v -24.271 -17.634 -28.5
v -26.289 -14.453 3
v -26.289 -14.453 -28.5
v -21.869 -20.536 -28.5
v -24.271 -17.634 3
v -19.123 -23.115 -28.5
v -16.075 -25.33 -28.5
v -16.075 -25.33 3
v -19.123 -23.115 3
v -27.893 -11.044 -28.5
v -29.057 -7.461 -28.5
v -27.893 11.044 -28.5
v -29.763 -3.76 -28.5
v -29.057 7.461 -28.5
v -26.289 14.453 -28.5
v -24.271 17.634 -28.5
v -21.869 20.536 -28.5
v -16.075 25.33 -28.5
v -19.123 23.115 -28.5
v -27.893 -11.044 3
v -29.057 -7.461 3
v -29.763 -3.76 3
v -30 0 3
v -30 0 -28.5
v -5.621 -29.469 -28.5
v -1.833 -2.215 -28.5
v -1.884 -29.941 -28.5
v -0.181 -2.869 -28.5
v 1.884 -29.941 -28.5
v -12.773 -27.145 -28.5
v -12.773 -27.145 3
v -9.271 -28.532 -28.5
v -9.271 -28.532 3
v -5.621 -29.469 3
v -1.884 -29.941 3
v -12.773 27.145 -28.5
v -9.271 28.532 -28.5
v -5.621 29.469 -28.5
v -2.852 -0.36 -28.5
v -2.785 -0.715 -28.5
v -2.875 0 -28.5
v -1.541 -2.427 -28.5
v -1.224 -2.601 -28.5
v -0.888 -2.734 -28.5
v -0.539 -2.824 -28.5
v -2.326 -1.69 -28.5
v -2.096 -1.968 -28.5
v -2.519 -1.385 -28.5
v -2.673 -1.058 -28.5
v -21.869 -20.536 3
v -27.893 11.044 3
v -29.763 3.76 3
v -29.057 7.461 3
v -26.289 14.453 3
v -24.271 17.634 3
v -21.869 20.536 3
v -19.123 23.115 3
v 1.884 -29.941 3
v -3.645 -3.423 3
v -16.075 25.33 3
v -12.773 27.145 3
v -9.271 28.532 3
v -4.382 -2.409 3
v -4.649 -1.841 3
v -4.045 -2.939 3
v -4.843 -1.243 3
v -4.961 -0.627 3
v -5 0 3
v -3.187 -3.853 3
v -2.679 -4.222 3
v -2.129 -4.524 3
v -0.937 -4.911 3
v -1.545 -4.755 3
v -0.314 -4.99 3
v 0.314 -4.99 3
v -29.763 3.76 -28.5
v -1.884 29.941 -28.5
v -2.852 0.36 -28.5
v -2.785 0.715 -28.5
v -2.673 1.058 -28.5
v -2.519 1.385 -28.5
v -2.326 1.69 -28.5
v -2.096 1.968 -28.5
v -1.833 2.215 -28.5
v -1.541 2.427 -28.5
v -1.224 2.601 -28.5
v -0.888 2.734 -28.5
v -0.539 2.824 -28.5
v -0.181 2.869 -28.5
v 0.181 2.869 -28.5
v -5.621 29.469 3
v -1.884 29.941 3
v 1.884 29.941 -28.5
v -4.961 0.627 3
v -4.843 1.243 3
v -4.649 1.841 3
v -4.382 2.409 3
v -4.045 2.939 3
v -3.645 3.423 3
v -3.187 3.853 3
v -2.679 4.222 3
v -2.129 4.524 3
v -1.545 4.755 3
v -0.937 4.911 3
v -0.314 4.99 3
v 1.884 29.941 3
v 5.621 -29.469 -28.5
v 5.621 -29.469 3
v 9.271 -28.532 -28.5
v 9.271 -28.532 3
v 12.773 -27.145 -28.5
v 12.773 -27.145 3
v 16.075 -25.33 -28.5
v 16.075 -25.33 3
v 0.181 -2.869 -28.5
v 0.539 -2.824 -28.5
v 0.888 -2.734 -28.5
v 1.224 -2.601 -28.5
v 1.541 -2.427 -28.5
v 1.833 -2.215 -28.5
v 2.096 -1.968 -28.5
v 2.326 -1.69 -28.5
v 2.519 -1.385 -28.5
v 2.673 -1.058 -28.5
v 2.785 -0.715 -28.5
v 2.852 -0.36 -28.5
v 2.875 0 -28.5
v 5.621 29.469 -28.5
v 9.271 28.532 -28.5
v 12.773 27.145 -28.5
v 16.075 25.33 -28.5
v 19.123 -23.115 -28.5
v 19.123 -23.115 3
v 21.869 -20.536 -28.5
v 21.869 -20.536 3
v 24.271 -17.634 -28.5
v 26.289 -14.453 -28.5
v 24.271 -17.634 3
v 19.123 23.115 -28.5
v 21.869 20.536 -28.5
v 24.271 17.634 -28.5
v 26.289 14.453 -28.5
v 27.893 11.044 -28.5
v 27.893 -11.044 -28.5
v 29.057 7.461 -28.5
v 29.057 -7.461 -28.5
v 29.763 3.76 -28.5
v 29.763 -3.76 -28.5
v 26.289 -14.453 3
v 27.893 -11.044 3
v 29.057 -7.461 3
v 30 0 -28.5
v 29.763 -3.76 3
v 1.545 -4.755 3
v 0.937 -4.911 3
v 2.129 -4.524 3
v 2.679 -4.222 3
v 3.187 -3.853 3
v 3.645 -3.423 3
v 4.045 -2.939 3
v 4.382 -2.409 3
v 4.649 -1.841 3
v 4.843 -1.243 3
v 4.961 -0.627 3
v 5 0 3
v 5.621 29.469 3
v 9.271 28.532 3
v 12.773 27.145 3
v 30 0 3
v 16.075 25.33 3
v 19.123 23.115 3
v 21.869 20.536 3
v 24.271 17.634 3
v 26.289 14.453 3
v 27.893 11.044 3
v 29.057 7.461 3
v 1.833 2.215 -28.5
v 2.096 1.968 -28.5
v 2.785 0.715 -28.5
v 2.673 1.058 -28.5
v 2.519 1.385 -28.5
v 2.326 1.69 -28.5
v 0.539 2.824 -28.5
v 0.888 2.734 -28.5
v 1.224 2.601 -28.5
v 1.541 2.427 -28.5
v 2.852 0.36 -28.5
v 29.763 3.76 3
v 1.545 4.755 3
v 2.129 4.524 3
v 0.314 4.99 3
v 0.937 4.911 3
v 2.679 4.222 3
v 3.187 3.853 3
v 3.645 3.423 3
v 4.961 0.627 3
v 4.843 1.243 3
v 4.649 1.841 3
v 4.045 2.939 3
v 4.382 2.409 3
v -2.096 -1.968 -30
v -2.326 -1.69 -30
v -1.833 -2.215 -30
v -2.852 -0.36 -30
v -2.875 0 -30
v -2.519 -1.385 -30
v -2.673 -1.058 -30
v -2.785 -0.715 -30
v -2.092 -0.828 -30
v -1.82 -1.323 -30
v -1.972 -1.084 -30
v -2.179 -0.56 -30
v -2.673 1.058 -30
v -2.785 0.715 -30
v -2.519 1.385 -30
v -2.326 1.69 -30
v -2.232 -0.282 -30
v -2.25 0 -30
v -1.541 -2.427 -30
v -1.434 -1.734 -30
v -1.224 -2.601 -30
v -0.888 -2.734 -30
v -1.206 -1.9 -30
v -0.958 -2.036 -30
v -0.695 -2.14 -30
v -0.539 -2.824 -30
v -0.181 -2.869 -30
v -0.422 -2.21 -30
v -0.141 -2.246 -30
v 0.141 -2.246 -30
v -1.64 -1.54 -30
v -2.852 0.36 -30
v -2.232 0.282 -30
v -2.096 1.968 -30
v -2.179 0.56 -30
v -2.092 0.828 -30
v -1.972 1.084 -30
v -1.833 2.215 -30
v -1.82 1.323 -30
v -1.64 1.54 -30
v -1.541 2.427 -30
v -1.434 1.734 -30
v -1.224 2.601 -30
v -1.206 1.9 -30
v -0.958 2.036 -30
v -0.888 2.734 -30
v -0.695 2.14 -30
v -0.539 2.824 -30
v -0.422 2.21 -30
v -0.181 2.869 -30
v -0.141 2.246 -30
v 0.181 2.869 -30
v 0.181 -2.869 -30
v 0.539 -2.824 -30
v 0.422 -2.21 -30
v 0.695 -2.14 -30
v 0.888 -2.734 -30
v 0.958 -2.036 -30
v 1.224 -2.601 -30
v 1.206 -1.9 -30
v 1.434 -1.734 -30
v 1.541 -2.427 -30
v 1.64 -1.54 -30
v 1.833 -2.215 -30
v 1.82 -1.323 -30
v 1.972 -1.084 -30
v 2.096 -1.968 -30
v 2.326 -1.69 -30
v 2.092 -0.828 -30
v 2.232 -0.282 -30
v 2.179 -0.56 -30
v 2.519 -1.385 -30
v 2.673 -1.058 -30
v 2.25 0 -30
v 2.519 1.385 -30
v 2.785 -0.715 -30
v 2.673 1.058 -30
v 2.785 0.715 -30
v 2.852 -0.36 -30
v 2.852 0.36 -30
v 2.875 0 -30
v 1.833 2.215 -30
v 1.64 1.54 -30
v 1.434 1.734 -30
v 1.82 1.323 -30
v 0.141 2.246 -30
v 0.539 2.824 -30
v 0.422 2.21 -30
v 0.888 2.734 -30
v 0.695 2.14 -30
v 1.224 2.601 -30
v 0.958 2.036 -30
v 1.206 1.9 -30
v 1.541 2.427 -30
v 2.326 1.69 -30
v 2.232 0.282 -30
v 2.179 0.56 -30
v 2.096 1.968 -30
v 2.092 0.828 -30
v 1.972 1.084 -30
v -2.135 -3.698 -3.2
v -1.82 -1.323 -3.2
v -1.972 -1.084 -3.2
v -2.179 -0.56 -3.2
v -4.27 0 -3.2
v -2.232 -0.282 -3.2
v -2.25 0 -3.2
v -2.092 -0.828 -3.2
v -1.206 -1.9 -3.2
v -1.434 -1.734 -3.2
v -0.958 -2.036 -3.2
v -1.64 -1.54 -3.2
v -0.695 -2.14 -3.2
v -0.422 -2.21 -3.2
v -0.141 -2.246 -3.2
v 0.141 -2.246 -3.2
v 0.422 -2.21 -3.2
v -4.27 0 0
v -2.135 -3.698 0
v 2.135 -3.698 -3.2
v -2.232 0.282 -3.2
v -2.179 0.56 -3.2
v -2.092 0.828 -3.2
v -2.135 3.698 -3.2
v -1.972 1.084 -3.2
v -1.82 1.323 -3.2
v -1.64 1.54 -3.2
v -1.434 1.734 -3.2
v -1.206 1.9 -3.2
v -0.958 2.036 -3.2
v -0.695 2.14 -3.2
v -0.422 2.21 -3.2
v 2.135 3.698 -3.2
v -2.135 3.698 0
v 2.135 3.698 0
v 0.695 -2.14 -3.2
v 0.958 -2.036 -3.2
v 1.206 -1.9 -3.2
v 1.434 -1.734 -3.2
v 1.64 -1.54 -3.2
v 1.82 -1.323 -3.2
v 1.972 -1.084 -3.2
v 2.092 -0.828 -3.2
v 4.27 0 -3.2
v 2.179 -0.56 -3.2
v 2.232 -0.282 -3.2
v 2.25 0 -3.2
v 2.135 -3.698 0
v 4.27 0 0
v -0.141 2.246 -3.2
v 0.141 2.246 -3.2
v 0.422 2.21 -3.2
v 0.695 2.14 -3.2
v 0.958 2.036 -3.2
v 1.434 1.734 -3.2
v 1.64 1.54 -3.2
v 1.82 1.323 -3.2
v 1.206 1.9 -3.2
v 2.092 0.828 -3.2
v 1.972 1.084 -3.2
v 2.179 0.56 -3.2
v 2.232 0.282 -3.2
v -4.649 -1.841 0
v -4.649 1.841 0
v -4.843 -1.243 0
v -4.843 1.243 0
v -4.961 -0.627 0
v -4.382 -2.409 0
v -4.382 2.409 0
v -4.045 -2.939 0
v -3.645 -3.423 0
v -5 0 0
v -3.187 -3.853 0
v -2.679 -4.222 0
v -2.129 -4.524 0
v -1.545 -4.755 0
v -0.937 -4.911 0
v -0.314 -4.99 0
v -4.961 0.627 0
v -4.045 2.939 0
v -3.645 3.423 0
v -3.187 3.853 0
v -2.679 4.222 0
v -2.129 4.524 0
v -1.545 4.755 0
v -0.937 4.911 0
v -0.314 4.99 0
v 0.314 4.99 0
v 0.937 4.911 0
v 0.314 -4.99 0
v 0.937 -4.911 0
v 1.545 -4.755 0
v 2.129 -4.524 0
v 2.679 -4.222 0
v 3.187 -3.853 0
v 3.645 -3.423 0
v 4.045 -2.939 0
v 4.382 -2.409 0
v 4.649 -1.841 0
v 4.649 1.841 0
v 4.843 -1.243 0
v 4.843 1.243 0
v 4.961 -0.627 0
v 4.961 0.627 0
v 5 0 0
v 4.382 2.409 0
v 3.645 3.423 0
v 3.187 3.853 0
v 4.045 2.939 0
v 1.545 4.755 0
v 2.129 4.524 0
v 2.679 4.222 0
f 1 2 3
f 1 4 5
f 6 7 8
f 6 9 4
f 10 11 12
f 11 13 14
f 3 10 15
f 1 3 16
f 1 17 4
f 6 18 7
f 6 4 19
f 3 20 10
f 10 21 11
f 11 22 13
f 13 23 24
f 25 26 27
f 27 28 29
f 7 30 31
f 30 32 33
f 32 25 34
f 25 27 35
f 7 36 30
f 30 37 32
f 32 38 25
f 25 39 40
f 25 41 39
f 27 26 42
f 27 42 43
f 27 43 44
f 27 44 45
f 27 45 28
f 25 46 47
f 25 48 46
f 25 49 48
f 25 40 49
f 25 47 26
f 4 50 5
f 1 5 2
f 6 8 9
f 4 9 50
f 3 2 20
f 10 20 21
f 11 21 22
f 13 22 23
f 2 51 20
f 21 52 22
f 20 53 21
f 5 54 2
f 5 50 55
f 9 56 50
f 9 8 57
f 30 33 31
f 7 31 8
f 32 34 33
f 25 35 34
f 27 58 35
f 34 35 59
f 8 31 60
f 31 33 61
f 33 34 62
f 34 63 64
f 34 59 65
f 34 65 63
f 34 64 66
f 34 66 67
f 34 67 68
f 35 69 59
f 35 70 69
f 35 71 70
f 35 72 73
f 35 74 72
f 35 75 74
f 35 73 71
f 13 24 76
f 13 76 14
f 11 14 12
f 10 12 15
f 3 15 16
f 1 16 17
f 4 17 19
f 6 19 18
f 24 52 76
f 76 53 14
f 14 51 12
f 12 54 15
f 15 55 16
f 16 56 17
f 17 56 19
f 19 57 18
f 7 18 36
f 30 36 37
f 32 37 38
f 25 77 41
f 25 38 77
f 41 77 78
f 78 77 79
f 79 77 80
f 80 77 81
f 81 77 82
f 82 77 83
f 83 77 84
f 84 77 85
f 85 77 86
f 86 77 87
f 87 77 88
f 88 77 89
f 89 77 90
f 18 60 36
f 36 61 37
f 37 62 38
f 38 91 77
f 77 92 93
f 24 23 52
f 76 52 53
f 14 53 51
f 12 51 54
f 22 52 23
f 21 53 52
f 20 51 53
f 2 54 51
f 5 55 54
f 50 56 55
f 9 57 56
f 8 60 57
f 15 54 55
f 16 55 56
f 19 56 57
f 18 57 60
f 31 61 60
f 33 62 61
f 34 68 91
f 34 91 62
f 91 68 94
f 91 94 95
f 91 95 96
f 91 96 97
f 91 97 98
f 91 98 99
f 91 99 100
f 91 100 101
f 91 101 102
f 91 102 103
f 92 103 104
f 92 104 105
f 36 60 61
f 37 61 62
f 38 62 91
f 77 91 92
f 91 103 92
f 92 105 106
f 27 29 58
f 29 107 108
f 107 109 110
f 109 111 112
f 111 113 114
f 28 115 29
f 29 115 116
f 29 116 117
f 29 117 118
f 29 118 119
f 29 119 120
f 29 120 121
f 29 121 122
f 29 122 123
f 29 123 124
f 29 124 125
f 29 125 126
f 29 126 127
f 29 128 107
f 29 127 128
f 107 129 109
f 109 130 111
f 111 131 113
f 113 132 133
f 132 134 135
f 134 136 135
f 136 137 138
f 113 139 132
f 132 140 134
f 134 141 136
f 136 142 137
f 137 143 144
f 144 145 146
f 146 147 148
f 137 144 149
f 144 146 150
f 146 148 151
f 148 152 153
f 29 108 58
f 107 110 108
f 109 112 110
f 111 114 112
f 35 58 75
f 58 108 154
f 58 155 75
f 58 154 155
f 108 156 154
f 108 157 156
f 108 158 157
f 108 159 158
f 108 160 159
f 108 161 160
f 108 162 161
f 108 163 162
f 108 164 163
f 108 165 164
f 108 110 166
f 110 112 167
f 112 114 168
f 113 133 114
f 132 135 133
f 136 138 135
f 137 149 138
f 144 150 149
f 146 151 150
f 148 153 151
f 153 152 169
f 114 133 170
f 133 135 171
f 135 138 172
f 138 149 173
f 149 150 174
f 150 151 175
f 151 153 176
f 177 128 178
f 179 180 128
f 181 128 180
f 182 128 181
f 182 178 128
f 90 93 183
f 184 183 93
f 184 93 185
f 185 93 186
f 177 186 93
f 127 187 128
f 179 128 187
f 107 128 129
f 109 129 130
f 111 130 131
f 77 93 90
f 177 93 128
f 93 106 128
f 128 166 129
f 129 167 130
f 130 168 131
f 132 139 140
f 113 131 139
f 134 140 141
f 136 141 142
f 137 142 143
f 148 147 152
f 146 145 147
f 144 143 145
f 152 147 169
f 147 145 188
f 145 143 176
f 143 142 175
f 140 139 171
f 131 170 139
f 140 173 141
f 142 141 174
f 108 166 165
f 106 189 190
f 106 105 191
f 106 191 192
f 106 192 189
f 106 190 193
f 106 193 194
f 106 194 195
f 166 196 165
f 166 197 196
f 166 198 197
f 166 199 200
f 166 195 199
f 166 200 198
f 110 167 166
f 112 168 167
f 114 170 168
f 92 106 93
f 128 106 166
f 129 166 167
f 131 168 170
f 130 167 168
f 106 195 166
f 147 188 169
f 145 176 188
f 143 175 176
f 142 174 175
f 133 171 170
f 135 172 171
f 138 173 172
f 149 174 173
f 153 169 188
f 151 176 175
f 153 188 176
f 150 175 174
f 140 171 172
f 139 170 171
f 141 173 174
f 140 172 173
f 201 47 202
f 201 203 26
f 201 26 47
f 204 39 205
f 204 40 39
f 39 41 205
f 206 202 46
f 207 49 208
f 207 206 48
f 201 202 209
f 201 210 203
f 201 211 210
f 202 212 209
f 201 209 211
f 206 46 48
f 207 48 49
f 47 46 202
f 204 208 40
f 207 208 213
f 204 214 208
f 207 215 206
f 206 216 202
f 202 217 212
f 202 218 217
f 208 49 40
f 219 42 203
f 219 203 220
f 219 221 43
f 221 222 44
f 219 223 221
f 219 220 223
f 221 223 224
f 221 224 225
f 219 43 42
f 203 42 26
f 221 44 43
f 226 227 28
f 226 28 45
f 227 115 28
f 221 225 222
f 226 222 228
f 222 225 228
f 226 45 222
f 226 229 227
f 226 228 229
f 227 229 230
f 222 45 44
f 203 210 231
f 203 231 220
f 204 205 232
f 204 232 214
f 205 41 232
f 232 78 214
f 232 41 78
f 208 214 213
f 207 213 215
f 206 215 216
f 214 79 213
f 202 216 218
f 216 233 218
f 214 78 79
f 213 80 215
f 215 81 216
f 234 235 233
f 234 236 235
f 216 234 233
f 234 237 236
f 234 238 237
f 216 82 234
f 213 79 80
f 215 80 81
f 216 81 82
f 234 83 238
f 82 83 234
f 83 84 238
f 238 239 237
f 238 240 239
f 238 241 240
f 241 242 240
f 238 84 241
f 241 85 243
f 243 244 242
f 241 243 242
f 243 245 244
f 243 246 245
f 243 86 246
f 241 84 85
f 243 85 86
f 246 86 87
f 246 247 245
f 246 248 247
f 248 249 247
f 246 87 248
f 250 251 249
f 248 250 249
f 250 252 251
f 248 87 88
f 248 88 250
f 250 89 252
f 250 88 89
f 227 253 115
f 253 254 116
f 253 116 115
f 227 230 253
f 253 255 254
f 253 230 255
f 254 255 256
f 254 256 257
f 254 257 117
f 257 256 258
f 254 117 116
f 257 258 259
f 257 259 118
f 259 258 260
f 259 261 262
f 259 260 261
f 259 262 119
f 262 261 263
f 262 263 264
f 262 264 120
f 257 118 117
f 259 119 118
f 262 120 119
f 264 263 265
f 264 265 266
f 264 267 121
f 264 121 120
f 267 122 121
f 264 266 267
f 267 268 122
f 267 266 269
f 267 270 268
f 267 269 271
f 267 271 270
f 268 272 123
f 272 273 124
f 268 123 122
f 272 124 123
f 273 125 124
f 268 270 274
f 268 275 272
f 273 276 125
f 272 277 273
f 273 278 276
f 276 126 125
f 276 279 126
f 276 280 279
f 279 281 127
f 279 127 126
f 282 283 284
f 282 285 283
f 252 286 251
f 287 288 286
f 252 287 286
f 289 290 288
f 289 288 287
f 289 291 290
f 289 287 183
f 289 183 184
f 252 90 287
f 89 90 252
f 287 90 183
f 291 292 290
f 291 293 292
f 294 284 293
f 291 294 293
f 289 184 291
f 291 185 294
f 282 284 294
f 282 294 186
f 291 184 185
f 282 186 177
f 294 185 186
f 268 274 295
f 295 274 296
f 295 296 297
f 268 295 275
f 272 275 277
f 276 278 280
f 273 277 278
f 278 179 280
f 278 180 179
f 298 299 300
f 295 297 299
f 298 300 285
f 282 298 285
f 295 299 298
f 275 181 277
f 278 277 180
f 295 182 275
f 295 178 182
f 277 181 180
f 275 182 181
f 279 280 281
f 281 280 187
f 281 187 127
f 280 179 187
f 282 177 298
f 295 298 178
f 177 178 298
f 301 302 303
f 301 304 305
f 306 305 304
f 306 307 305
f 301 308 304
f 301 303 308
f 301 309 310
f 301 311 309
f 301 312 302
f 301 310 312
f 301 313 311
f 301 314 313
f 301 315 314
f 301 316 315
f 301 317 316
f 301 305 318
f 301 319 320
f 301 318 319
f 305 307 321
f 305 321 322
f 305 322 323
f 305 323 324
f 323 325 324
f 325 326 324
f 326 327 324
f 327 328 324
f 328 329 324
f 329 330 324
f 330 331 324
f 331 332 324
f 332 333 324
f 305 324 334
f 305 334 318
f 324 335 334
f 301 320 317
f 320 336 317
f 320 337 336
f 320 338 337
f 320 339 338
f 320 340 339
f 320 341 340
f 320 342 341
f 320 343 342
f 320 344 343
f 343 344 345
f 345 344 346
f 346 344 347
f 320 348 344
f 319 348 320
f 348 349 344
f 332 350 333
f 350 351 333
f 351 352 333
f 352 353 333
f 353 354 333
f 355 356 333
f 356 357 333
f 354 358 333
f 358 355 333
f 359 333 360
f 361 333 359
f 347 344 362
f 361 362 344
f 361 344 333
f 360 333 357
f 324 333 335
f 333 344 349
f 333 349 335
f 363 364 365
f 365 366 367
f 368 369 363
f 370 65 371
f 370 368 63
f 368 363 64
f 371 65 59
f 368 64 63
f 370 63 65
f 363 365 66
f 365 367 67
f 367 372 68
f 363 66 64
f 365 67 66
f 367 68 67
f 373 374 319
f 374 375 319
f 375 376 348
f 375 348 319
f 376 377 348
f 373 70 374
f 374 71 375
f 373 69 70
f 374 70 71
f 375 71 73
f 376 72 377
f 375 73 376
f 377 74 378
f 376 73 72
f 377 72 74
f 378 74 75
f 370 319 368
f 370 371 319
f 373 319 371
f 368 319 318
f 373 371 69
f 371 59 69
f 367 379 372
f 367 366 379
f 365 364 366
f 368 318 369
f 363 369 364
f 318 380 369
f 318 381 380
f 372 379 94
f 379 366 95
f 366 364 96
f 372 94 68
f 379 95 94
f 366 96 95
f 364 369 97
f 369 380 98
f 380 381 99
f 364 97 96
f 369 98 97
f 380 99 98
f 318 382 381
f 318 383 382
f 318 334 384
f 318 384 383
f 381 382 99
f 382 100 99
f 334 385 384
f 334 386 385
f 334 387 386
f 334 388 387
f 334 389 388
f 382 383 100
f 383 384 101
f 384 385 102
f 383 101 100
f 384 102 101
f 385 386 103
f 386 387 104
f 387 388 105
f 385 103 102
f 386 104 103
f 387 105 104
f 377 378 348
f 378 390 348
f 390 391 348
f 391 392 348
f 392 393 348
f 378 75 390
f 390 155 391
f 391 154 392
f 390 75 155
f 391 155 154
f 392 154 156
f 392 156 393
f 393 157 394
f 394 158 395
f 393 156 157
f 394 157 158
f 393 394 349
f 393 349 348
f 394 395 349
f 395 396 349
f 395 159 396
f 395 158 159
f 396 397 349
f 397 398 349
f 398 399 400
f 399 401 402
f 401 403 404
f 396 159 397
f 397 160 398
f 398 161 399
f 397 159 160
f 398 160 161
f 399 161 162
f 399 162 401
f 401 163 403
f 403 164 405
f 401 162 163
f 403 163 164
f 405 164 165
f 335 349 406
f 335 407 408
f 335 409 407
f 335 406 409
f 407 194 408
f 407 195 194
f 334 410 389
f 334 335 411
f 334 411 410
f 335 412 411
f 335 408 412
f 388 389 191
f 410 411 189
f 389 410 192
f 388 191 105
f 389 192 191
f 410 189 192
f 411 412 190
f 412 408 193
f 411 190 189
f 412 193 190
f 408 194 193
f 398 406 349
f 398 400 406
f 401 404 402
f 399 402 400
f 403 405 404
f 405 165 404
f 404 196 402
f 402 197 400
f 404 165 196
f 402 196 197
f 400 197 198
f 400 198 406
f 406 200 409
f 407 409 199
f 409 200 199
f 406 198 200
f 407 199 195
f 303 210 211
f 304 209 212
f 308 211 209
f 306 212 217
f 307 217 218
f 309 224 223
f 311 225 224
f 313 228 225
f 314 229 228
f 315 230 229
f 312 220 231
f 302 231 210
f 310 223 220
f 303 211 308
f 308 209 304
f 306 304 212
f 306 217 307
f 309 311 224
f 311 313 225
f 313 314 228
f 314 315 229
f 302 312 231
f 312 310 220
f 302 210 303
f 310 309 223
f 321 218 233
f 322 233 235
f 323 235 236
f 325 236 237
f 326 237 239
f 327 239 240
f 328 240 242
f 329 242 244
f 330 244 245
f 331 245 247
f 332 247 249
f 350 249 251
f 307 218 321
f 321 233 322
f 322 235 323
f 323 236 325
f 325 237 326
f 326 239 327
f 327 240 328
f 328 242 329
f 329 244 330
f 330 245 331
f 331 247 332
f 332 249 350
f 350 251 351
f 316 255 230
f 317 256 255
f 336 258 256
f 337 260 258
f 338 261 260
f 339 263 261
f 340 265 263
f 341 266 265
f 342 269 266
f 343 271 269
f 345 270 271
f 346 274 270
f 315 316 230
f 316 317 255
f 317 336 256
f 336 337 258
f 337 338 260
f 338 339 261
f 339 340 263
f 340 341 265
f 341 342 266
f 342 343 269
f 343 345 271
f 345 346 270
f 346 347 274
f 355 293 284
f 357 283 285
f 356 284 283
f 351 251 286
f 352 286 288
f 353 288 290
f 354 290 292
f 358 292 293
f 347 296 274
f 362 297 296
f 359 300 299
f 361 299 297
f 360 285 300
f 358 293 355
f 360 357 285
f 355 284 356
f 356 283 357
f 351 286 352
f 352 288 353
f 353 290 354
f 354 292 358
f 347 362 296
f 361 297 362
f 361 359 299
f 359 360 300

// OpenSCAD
$fn = 50;

difference() {
	union() {
		translate(v = [0, 0, -28.5]) {
			cylinder(h = 31.5, r = 30.0);
		}
		#translate(v = [0, 0, -30.0]) {
			cylinder(h = 30, r = 2.875);
		}
	}
	union() {
		translate(v = [0, 0, 0]) {
			rotate(a = [0, 0, 0]) {
				difference() {
					union() {
						translate(v = [0, 0, -3.2]) {
							linear_extrude(height = 3.2) {
								polygon(points = [[4.2698, 0.0], [2.1349000000000005, 3.697755269078796], [-2.134899999999999, 3.6977552690787965], [-4.2698, 5.228996902999369e-16], [-2.134900000000002, -3.6977552690787956], [2.1348999999999974, -3.697755269078798]]);
							}
						}
					}
					union();
				}
			}
		}
		#cylinder(h = 3, r = 5.0);
		#translate(v = [0, 0, -100.0]) {
			cylinder(h = 200, r = 2.25);
		}
	}
}
